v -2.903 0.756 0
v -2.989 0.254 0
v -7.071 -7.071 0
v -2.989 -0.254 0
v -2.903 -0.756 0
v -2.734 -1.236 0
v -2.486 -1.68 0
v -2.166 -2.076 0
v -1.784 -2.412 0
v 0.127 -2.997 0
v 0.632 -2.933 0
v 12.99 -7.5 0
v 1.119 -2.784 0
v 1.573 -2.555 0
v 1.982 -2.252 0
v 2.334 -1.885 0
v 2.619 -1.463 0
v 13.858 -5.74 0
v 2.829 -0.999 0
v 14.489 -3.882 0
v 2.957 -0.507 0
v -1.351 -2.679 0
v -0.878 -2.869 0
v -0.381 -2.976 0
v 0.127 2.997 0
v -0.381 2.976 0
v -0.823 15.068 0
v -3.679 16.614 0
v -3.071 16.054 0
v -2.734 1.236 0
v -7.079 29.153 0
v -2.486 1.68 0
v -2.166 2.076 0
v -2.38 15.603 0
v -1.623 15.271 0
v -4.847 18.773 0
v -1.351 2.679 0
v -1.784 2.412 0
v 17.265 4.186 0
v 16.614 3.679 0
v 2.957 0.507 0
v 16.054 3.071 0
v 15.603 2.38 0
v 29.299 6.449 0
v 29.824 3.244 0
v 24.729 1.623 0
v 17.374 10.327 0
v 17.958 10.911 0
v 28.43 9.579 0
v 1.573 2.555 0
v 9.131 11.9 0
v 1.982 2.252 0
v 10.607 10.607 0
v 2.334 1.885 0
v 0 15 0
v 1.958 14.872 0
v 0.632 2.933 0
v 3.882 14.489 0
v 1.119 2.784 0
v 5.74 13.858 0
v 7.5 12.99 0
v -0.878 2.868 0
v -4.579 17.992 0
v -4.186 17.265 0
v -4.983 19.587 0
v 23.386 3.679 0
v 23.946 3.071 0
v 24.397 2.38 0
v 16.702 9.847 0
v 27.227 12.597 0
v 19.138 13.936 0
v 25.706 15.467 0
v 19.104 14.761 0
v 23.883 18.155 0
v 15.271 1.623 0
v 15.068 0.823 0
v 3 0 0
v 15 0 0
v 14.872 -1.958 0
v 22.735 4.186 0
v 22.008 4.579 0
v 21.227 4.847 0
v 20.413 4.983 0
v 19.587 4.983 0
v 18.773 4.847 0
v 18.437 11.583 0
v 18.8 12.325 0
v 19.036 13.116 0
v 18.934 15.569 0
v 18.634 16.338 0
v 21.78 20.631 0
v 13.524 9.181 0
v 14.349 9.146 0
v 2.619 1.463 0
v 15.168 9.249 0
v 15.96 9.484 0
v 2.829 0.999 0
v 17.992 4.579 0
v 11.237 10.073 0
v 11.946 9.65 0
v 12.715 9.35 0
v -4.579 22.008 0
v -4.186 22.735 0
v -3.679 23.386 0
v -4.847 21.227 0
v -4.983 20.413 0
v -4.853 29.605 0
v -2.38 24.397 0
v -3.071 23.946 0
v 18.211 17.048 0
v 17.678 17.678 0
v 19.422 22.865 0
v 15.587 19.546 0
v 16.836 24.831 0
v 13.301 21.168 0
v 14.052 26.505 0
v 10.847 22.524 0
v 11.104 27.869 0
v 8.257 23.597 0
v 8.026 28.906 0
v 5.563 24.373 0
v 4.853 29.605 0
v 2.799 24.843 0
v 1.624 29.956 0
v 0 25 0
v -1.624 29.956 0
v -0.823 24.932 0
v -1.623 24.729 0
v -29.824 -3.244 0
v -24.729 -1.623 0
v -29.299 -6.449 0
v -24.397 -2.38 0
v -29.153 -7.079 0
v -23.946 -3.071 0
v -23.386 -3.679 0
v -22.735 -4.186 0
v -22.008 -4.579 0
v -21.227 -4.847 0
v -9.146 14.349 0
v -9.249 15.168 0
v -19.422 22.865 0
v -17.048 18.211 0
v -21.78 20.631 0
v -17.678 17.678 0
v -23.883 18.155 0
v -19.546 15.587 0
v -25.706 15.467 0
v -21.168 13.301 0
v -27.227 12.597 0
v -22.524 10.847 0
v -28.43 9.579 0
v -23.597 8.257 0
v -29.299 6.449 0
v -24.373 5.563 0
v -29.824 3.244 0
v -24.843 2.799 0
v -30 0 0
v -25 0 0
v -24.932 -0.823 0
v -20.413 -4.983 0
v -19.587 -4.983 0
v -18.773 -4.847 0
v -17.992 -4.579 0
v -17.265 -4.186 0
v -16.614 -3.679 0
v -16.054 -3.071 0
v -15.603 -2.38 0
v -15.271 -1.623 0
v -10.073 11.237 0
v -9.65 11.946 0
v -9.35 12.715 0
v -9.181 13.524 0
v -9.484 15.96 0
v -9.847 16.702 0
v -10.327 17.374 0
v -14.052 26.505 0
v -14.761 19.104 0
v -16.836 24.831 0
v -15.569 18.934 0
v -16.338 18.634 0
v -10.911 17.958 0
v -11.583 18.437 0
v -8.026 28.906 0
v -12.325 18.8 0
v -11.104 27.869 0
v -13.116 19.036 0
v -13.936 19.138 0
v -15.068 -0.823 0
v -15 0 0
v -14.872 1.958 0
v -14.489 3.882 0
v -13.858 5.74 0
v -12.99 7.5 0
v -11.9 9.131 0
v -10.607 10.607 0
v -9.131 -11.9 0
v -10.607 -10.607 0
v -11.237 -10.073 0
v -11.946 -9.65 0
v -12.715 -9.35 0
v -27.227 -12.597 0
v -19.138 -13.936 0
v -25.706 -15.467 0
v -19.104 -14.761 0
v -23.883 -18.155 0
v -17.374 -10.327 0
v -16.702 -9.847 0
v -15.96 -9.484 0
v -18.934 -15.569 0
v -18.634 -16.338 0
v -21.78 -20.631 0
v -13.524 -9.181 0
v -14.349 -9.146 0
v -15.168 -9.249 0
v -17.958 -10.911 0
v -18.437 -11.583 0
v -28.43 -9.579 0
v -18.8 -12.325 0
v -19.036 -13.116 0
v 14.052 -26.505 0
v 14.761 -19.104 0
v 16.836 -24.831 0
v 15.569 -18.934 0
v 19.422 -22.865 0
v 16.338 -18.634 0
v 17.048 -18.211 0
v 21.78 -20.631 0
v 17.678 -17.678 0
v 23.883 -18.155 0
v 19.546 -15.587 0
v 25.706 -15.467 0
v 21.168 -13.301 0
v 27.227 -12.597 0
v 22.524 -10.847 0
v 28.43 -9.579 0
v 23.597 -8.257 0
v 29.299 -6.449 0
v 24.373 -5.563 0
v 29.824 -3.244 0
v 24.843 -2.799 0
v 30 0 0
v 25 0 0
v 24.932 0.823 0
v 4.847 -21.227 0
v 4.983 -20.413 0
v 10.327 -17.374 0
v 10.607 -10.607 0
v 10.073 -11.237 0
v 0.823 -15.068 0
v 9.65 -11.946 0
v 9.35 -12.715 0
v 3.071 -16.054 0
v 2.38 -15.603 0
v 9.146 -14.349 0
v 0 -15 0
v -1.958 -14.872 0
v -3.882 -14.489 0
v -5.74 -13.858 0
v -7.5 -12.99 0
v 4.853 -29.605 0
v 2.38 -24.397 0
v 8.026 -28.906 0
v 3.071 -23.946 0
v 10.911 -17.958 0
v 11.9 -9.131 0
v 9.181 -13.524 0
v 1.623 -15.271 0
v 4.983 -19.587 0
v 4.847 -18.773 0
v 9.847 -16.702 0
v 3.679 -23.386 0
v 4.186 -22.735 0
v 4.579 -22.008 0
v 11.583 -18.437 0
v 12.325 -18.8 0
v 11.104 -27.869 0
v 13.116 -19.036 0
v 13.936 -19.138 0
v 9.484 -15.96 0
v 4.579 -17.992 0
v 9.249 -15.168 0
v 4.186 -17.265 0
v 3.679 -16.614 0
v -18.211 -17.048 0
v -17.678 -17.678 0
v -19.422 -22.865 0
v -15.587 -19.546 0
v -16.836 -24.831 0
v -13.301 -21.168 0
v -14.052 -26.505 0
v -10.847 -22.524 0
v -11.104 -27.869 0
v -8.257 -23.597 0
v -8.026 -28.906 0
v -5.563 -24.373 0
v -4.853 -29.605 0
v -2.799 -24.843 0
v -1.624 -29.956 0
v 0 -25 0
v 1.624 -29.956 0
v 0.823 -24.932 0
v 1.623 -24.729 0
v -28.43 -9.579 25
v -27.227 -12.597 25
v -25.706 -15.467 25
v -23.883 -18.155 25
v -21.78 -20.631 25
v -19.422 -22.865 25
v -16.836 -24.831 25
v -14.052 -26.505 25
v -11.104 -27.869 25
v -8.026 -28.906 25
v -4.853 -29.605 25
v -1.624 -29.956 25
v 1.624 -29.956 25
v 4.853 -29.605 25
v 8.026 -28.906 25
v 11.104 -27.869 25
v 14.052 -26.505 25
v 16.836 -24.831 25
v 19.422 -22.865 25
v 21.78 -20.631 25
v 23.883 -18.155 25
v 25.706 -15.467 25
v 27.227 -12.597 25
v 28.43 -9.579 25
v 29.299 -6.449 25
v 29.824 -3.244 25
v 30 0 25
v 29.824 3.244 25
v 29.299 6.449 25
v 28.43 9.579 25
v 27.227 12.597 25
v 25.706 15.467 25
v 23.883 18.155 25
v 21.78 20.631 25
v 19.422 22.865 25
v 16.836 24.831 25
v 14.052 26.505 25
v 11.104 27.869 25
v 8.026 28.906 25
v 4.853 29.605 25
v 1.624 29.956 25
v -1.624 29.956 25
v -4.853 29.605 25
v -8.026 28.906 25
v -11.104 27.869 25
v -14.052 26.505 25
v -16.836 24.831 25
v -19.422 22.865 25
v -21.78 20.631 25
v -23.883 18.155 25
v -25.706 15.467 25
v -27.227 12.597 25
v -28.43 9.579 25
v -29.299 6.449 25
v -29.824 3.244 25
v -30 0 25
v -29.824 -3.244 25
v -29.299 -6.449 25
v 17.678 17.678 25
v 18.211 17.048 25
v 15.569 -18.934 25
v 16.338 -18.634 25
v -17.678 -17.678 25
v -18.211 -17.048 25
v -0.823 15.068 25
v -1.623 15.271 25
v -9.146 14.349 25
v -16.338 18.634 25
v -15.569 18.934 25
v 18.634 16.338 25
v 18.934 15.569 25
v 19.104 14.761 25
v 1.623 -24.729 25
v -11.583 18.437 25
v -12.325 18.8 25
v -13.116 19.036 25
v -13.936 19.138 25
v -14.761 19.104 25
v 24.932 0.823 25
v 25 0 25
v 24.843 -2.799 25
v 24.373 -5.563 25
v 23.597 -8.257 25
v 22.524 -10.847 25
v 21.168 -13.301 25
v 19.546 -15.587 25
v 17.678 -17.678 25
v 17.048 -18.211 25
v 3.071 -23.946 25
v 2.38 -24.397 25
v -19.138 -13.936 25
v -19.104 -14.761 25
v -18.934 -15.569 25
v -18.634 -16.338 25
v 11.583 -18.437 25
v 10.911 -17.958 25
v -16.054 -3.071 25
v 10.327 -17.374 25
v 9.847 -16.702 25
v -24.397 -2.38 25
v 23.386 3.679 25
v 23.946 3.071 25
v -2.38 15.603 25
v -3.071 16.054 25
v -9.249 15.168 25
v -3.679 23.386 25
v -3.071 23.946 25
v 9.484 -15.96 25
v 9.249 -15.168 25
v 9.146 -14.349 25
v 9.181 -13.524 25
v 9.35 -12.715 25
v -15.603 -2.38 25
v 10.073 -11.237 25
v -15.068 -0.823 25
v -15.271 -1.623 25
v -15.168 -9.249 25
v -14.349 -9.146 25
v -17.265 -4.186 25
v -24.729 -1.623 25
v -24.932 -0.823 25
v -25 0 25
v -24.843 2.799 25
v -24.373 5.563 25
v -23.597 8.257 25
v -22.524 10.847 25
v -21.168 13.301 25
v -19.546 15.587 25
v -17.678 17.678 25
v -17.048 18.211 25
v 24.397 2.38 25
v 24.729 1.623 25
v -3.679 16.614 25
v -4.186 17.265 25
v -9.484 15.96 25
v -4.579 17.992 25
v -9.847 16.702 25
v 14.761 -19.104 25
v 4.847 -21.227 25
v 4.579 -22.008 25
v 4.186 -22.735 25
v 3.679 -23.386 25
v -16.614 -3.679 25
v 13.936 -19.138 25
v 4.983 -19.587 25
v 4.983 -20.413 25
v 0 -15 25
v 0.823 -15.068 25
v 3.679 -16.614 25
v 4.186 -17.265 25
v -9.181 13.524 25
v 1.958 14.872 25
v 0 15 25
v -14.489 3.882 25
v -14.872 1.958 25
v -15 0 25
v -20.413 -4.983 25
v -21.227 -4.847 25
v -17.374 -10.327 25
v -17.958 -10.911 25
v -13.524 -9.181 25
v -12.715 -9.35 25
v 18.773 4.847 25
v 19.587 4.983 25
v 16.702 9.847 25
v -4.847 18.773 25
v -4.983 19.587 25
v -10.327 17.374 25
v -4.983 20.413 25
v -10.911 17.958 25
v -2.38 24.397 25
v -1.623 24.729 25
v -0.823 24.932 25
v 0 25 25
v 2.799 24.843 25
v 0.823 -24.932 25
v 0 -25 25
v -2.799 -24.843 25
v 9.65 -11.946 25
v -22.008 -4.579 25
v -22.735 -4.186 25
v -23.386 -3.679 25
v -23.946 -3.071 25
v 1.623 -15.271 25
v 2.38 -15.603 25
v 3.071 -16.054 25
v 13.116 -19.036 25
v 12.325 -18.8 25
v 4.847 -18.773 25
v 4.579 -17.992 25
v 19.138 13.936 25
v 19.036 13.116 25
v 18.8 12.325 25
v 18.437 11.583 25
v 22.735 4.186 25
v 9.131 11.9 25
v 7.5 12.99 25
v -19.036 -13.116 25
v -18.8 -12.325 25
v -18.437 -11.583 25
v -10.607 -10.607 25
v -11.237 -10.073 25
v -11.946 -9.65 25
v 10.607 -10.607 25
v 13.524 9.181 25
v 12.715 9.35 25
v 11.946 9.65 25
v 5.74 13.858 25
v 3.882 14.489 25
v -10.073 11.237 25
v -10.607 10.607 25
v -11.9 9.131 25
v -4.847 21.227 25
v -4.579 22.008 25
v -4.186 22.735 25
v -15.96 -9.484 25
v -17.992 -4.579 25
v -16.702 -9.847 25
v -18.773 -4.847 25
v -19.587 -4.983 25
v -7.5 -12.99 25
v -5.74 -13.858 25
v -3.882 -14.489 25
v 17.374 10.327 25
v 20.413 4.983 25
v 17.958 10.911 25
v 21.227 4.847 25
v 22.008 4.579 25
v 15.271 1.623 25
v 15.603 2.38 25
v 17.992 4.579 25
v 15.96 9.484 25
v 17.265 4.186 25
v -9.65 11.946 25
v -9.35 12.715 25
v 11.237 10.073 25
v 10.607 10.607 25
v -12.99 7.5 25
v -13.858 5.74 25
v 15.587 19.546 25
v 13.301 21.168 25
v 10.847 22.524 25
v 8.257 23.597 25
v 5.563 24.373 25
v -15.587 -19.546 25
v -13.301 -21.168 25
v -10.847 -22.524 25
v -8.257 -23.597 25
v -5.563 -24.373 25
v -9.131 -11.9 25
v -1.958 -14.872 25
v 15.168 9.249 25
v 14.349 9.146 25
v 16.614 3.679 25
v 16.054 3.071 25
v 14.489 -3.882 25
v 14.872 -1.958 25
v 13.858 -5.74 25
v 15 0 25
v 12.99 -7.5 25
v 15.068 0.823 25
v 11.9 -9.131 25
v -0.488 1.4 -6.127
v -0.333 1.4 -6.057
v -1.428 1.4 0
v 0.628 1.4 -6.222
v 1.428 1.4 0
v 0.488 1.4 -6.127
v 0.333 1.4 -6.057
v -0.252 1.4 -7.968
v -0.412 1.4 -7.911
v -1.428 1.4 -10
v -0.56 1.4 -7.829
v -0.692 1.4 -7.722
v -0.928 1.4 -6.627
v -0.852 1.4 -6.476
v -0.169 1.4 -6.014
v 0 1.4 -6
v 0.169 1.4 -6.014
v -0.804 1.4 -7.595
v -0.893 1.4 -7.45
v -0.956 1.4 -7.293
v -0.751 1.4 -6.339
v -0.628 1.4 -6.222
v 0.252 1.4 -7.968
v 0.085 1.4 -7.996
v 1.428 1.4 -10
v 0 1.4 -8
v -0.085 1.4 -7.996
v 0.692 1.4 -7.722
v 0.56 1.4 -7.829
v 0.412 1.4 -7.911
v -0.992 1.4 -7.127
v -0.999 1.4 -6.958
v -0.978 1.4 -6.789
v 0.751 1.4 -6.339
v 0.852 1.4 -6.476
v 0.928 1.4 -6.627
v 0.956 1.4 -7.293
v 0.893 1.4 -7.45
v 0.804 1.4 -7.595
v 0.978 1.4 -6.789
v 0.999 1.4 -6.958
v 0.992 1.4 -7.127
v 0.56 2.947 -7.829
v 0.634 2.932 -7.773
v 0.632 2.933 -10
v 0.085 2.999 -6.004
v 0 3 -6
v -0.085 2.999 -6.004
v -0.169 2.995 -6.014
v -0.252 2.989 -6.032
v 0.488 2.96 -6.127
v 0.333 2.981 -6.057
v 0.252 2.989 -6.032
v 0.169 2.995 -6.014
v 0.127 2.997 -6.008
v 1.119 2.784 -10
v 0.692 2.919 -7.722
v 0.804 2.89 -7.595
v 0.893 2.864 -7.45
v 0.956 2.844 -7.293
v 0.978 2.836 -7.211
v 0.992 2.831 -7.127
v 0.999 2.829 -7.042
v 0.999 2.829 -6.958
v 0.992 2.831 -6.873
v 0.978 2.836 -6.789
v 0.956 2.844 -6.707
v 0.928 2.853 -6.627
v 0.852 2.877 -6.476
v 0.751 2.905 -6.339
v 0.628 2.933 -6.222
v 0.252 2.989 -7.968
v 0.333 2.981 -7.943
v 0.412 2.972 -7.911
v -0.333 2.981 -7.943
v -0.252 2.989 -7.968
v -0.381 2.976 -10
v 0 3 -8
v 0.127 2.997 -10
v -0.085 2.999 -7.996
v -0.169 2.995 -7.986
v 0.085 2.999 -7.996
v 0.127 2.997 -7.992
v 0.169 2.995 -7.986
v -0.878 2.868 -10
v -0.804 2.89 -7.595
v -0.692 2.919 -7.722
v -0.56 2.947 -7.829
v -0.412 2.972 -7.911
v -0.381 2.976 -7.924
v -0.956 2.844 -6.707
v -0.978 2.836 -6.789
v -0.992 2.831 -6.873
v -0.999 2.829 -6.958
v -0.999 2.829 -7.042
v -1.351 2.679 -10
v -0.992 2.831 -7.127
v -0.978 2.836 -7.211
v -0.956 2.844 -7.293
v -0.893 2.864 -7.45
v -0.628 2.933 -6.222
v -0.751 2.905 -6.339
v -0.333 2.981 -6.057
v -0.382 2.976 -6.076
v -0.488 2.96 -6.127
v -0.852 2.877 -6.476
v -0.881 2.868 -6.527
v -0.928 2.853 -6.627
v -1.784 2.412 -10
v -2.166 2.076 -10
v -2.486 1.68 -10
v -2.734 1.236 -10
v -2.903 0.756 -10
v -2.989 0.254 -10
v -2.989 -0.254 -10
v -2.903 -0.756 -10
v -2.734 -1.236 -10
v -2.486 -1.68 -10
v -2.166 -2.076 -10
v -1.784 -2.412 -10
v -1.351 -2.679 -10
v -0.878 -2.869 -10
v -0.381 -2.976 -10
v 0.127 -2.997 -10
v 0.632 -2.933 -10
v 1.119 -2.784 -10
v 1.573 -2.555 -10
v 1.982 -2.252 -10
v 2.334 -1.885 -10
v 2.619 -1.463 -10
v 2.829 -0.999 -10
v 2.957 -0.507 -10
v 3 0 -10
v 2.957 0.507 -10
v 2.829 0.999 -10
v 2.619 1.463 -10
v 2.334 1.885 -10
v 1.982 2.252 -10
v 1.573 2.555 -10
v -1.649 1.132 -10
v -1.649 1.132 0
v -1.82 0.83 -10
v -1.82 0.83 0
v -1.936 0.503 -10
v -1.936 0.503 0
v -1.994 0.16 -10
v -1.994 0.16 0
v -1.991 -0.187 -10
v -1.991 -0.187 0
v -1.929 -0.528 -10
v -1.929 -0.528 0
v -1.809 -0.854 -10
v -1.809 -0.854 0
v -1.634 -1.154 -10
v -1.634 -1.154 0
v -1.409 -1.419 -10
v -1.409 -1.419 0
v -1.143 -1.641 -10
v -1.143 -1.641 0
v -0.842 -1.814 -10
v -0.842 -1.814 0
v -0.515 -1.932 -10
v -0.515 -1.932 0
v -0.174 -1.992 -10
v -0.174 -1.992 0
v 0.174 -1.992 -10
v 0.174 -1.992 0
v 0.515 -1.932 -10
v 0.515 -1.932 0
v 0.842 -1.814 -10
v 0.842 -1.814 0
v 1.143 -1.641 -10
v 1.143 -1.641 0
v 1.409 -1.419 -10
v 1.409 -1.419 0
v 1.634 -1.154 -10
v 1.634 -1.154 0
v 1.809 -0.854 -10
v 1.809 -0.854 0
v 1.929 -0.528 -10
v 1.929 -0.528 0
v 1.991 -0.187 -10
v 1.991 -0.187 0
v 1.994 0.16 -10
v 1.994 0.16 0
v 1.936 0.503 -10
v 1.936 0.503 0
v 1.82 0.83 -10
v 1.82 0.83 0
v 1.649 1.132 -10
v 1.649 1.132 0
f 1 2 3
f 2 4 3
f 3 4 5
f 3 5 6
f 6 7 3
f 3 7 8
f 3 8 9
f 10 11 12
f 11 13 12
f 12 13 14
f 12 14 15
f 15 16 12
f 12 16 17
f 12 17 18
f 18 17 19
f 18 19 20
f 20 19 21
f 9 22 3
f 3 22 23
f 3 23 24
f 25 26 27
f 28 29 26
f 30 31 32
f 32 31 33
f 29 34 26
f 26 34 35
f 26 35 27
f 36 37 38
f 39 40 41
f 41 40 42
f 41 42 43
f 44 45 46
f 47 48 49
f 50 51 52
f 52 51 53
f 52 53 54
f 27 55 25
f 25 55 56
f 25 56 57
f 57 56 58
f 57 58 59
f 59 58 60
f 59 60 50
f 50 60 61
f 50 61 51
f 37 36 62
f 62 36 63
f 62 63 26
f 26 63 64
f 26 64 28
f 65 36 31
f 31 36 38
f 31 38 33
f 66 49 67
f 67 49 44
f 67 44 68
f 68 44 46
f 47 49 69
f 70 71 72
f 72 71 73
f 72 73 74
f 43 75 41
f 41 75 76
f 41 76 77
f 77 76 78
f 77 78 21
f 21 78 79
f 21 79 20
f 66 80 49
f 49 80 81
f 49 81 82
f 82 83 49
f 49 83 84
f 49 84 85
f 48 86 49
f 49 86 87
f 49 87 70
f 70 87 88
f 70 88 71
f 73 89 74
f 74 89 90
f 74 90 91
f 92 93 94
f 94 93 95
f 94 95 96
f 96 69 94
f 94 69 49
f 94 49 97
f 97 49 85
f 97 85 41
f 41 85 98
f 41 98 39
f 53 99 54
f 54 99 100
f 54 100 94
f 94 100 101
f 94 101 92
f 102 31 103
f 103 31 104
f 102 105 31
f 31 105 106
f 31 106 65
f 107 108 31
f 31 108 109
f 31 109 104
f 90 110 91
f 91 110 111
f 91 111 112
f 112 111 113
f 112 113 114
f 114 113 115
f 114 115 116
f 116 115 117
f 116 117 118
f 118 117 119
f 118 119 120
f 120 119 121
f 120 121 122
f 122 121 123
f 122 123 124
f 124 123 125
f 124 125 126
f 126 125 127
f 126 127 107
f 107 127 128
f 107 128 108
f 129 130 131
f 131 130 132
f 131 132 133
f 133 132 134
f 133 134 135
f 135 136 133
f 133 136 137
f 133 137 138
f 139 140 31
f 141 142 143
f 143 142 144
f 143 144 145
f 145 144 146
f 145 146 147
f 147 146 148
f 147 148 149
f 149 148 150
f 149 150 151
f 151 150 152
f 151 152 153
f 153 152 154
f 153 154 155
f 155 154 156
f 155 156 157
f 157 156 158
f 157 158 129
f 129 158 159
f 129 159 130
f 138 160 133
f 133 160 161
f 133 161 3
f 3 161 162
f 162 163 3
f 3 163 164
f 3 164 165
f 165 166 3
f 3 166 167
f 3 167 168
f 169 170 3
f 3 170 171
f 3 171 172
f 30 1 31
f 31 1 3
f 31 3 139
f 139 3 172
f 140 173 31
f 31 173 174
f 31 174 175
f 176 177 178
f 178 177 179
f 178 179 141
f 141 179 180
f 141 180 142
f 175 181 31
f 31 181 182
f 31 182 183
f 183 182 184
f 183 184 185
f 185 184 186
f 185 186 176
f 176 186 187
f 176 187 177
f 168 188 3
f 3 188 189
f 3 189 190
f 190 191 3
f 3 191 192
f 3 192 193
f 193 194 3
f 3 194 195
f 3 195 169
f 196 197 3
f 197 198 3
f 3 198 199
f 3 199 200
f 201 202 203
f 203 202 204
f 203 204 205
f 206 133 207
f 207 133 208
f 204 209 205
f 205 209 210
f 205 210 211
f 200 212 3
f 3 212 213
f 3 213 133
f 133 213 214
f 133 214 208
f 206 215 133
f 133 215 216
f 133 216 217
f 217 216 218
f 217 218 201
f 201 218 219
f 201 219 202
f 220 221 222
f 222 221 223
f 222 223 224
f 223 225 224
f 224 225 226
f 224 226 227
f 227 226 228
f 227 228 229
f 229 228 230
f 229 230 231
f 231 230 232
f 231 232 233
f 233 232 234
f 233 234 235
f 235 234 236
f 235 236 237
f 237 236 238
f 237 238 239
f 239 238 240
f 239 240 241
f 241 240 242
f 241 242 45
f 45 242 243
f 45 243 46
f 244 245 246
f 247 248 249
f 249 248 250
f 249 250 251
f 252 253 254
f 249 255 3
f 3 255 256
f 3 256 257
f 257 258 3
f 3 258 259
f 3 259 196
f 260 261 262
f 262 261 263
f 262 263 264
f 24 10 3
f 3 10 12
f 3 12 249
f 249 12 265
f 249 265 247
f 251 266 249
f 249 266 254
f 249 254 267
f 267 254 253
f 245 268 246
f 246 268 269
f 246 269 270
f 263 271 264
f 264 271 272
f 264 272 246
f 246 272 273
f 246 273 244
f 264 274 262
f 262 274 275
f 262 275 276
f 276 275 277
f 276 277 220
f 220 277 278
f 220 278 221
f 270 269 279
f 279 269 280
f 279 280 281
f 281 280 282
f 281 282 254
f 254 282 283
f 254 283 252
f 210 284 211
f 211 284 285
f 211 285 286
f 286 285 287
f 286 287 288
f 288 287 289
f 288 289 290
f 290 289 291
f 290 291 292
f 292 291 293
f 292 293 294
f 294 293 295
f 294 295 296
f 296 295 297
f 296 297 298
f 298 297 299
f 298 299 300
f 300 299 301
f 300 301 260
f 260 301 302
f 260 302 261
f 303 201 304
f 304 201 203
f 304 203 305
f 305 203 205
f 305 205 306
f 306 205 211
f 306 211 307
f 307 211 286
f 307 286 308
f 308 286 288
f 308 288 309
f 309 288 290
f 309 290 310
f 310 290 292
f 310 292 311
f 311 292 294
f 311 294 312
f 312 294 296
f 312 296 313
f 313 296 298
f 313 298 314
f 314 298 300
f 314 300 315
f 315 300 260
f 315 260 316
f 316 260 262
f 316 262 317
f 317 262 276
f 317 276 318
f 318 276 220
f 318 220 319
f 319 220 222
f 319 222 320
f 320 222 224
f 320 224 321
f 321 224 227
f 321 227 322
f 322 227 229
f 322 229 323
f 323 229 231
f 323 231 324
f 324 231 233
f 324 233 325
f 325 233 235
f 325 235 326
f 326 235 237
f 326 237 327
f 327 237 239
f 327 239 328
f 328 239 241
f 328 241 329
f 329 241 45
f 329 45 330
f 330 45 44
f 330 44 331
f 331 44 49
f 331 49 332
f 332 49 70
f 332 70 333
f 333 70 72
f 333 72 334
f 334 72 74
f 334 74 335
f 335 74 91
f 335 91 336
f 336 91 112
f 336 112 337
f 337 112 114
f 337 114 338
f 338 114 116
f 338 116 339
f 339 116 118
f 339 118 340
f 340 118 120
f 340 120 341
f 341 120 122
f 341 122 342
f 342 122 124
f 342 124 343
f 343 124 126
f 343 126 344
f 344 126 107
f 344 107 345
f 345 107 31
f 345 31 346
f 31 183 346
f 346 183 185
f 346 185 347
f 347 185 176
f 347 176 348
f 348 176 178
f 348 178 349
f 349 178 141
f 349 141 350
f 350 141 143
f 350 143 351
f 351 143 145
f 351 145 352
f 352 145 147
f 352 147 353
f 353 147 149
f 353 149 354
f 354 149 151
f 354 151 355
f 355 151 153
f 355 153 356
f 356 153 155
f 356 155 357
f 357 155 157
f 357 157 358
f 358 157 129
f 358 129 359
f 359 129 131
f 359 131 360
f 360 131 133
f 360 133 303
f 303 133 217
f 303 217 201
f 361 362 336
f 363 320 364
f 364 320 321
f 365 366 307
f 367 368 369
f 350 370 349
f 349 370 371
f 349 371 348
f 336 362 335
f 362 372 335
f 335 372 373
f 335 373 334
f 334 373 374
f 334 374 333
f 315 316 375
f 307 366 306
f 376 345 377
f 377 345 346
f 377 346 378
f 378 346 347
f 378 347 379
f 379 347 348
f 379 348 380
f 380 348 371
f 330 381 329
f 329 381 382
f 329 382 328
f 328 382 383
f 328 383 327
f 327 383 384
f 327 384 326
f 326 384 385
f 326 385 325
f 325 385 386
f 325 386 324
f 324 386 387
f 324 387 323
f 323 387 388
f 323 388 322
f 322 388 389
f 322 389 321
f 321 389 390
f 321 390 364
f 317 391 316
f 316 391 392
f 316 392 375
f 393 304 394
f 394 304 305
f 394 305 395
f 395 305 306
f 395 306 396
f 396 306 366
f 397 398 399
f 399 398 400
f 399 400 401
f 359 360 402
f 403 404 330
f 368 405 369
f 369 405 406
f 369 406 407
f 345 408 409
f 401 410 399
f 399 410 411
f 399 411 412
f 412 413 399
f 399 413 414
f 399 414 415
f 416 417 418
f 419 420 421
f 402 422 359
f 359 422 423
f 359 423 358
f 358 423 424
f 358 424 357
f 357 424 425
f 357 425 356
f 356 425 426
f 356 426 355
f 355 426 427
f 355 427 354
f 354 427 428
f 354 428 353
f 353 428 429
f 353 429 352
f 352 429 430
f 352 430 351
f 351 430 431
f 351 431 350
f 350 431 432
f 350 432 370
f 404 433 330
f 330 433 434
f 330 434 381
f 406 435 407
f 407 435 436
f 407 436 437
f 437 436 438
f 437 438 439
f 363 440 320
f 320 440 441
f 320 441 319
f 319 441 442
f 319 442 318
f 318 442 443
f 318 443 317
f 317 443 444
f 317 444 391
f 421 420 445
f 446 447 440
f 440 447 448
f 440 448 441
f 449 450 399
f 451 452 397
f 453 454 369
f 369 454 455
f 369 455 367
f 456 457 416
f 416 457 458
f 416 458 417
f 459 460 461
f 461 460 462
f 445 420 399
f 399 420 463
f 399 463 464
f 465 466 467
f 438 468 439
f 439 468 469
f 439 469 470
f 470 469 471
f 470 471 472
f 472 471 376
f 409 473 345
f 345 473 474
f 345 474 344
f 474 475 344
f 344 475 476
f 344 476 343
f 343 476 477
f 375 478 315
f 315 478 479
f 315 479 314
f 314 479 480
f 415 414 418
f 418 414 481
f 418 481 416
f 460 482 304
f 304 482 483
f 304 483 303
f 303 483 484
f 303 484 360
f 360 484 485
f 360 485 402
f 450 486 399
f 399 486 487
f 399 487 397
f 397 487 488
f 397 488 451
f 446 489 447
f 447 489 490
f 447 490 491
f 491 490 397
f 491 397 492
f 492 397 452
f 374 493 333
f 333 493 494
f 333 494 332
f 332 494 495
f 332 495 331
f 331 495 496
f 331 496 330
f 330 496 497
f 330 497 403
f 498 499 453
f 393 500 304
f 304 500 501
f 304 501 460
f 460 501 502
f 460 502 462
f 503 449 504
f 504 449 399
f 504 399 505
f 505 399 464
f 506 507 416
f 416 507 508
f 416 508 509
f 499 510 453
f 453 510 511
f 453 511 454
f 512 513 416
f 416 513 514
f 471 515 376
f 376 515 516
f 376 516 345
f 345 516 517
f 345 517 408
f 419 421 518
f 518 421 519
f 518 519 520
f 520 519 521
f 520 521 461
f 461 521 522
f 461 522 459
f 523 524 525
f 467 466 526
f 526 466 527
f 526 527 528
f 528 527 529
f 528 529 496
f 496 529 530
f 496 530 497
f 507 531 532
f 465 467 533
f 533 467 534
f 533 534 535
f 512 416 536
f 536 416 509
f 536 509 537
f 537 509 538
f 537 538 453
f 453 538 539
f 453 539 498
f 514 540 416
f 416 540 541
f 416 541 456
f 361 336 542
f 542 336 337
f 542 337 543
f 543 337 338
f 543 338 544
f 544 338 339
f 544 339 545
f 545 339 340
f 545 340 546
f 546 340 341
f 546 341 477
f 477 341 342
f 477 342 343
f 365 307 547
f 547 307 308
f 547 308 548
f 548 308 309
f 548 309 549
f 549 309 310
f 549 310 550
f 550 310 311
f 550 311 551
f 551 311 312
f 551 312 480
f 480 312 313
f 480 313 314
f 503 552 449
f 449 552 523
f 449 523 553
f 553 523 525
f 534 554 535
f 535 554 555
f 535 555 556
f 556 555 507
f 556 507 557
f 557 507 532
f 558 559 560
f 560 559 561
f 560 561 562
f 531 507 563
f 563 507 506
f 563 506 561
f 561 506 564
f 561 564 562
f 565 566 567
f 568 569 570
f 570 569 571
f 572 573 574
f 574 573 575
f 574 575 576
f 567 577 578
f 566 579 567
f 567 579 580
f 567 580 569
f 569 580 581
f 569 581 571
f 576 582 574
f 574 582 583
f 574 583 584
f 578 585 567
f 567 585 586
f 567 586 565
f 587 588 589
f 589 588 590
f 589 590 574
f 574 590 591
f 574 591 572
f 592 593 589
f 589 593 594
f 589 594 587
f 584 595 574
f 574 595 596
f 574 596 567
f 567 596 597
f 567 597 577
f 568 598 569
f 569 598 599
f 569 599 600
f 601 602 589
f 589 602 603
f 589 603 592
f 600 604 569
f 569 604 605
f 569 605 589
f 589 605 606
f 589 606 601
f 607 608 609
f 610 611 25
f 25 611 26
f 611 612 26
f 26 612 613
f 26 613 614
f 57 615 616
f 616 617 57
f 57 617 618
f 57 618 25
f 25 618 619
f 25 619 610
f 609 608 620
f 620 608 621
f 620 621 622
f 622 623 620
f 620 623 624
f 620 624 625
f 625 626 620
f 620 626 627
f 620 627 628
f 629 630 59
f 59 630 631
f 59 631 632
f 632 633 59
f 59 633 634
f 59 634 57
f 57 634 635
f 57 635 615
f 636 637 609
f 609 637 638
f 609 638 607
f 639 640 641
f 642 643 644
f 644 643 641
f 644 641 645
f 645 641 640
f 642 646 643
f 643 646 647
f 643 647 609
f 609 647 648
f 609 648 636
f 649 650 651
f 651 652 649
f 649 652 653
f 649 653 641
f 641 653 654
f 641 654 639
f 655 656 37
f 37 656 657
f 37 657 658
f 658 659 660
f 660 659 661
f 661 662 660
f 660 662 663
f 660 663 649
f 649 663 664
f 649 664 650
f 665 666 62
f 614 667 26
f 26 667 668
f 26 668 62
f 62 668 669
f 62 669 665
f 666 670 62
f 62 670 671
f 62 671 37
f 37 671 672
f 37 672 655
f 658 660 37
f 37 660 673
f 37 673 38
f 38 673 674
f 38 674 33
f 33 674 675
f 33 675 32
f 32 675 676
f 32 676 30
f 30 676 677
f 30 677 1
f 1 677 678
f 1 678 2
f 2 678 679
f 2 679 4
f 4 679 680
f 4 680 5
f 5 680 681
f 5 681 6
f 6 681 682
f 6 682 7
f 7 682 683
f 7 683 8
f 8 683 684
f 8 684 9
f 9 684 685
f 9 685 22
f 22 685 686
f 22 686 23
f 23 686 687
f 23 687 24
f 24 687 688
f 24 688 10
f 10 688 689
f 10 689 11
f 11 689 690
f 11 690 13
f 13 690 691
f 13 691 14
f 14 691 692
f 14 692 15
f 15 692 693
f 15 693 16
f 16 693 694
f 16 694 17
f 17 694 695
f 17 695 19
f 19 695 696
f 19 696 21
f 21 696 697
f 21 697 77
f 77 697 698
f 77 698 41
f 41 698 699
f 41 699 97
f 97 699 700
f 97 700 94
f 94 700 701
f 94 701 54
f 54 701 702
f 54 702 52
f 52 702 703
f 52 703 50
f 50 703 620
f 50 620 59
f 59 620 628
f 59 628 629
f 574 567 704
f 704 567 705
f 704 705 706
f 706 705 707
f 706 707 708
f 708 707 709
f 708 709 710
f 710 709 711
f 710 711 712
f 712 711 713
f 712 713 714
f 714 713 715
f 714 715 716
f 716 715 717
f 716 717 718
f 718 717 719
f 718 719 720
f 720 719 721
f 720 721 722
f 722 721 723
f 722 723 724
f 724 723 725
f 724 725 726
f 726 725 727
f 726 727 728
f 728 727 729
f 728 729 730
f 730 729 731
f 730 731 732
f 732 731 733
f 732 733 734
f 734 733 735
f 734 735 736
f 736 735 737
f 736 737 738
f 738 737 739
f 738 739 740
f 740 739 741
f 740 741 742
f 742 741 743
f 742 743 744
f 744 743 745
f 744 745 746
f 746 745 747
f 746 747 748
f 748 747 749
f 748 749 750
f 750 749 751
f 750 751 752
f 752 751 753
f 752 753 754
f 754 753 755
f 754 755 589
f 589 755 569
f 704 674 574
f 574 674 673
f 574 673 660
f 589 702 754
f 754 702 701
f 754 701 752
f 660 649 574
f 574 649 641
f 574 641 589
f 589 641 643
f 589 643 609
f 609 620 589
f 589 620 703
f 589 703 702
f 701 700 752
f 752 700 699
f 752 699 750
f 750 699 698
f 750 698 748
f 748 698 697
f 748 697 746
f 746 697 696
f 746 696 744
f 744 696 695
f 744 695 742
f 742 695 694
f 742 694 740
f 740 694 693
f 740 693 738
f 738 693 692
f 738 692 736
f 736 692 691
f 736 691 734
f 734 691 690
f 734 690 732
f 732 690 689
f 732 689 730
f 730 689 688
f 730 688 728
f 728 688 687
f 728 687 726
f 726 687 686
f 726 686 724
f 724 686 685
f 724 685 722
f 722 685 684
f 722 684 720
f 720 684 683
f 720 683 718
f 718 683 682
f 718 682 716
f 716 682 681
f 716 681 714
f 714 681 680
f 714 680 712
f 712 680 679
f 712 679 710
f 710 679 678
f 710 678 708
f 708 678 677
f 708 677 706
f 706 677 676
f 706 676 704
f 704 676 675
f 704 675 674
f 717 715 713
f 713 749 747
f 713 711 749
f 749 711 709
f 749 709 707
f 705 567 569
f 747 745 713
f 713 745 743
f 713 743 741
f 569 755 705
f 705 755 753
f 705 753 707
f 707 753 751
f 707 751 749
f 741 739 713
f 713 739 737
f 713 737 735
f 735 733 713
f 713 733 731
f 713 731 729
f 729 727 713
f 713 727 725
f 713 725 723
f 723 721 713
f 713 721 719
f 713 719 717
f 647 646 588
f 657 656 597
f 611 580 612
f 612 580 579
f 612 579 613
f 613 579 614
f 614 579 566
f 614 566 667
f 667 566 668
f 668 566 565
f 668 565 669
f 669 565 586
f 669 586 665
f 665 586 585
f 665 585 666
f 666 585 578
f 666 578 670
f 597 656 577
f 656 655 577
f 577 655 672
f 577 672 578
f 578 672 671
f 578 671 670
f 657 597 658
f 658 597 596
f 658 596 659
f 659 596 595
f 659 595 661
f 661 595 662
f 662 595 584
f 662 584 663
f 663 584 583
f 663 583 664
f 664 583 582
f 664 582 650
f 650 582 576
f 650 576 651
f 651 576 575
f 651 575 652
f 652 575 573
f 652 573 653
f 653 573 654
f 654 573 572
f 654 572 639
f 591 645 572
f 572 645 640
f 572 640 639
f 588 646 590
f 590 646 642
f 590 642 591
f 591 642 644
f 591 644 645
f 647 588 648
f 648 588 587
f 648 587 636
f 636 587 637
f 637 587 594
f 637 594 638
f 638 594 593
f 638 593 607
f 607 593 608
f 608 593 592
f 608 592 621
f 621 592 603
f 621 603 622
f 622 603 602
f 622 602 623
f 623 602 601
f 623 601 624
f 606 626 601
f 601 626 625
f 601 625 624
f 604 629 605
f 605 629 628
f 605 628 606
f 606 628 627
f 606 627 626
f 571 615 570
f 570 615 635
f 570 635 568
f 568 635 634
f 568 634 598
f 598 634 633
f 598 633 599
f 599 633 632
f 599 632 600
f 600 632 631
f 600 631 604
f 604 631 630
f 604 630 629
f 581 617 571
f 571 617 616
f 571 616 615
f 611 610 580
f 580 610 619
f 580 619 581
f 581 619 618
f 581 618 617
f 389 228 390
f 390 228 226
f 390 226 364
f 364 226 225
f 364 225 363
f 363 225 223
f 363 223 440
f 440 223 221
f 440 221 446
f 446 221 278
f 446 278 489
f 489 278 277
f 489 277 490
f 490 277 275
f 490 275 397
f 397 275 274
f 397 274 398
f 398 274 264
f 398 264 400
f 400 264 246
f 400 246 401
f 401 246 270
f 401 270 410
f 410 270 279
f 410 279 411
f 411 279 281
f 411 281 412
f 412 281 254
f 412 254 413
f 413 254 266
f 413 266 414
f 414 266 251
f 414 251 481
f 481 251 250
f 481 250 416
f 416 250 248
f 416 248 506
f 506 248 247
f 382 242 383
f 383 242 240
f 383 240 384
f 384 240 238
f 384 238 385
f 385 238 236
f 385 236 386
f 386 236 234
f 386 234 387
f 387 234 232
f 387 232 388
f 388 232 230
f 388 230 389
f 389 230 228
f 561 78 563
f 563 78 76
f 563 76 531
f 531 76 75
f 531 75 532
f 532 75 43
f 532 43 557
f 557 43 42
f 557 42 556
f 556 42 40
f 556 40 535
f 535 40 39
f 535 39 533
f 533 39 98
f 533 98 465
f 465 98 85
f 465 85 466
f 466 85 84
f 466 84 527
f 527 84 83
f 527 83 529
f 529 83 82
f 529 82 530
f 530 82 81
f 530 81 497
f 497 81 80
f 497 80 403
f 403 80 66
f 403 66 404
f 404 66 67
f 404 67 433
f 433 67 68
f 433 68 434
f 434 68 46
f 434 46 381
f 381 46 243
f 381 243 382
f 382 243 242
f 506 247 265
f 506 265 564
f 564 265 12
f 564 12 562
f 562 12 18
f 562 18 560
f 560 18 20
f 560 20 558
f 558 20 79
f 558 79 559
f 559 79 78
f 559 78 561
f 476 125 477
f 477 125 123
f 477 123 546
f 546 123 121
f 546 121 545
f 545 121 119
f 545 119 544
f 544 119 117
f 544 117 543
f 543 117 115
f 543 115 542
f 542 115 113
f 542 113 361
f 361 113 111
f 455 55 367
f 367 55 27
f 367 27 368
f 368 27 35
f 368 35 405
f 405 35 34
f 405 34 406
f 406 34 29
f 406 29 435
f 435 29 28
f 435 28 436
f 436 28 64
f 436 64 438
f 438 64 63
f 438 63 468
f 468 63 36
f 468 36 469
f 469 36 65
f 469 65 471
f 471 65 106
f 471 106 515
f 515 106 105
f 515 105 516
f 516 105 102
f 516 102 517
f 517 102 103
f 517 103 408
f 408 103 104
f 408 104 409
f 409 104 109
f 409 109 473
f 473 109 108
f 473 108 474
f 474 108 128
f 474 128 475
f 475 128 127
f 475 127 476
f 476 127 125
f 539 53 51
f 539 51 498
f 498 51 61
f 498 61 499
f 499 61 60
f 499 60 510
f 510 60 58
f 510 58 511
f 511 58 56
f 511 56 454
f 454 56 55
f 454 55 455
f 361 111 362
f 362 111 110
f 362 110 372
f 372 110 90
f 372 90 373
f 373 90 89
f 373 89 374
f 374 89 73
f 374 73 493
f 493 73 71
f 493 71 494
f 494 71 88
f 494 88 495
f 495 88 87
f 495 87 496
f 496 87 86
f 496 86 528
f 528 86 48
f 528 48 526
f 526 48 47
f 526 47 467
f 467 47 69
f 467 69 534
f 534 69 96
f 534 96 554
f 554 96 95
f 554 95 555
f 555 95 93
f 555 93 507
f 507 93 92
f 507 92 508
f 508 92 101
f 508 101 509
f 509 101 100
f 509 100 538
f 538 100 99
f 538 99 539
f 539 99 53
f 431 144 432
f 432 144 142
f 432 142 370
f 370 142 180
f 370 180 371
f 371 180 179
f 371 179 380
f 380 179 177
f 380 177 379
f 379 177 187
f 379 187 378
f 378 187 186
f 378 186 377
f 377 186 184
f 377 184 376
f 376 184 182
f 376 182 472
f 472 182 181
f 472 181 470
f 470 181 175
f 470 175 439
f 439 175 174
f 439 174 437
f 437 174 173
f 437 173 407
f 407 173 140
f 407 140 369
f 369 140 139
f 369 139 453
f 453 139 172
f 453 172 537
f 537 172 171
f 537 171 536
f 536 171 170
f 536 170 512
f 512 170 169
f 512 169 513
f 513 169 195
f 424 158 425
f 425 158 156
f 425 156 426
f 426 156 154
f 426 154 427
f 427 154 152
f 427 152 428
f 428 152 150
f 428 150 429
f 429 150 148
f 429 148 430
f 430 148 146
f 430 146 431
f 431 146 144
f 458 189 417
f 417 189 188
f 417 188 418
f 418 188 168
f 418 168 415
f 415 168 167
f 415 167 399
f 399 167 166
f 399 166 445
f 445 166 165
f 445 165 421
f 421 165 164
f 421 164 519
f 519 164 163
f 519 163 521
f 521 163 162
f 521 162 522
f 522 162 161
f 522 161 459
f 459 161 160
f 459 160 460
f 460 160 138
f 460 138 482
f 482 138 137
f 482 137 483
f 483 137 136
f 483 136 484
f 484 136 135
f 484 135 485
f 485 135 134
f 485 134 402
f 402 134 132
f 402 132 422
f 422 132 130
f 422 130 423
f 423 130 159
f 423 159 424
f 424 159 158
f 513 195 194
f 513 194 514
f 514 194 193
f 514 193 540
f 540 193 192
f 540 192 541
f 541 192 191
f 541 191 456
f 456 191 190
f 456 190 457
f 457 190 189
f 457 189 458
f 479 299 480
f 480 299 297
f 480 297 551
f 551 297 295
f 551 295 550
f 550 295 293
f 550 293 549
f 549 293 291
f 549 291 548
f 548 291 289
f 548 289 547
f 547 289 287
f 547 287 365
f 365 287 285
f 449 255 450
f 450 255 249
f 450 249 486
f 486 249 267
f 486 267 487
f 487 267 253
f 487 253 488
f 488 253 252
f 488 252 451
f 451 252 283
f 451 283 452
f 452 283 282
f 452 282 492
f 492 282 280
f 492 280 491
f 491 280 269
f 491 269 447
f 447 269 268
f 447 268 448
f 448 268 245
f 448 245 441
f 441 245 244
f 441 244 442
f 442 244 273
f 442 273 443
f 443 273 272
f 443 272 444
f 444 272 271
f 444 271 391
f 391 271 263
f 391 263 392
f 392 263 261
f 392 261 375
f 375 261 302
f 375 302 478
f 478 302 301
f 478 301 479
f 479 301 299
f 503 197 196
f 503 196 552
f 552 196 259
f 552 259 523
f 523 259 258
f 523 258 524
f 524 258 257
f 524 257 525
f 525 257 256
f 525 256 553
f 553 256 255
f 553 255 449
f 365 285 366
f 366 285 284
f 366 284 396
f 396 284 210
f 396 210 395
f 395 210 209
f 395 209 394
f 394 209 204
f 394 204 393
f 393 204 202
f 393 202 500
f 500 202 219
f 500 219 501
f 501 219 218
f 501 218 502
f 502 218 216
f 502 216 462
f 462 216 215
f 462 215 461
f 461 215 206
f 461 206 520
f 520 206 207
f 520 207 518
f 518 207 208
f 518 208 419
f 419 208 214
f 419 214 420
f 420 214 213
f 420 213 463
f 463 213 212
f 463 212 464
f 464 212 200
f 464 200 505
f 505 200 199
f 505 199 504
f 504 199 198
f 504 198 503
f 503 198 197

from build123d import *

# Parameters (mm, degrees)
SKETCH_1_R          = 30
EXTRUDE_1_DEPTH     = 25
EXTRUDE_5_DEPTH     = 10
CUT_EXTRUDE_1_REACH = 53.127
SKETCH_4_R          = 1
CUT_EXTRUDE_3_REACH = 51.244


with BuildPart() as part:
    # 草图1 → 凸台-拉伸1 (new body)
    with BuildSketch(Plane.XY):
        Circle(SKETCH_1_R)
    extrude(amount=EXTRUDE_1_DEPTH)

    # 草图2 → 凸台-拉伸5 (add)
    with BuildSketch(Plane.XY):
        with BuildLine():
            ThreePointArc((2.653299832, 1.4), (0, 3), (-2.653299832, 1.4))
            Line((-2.653299832, 1.4), (-1.428285686, 1.4))
            ThreePointArc((-1.428285686, 1.4), (0, 2), (1.428285686, 1.4))
            Line((1.428285686, 1.4), (2.653299832, 1.4))
        make_face()
        with BuildLine():
            Line((-1.428285686, 1.4), (-2.653299832, 1.4))
            ThreePointArc((-2.653299832, 1.4), (-0.721145097, -2.912035327), (3, 0))
            ThreePointArc((3, 0), (2.912035327, 0.721145097), (2.653299832, 1.4))
            Line((2.653299832, 1.4), (1.428285686, 1.4))
            ThreePointArc((1.428285686, 1.4), (1.851563039, 0.756117924), (2, 0))
            ThreePointArc((2, 0), (-0.756117924, -1.851563039), (-1.428285686, 1.4))
        make_face()
        with BuildLine():
            ThreePointArc((1.428285686, 1.4), (0, 2), (-1.428285686, 1.4))
            Line((-1.428285686, 1.4), (0, 1.4))
            Line((0, 1.4), (1.428285686, 1.4))
        make_face()
    extrude(amount=-EXTRUDE_5_DEPTH)

    # 草图4 → 切除-拉伸1 (cut, up to next)
    with BuildSketch(Plane(origin=(0, 3, 0), x_dir=(1, 0, 0), z_dir=(0, 1, 0)), mode=Mode.PRIVATE) as cut_extrude_1_sk1:
        with Locations(Location((0, 7, 0), (0, 0, 270))):
            Circle(SKETCH_4_R)
    cut_extrude_1_tool1 = extrude(cut_extrude_1_sk1.sketch, amount=-CUT_EXTRUDE_1_REACH, mode=Mode.PRIVATE) & part.part
    add(cut_extrude_1_tool1.solids().sort_by_distance((0, 3, -7))[0], mode=Mode.SUBTRACT)

    # 草图6 → 切除-拉伸3 (cut, up to next)
    with BuildSketch(Plane(origin=(0, 0, 0), x_dir=(-1, 0, 0), z_dir=(0, 0, -1)), mode=Mode.PRIVATE) as cut_extrude_3_sk1:
        with BuildLine():
            ThreePointArc((-10.60660171, 10.606601726), (-5.74025148, 13.85819299), (2e-09, 15))
            ThreePointArc((2e-09, 15), (5, 20.000000001), (0, 25))
            ThreePointArc((0, 25), (-9.567085809, 23.096988313), (-17.67766953, 17.67766953))
            ThreePointArc((-17.67766953, 17.67766953), (-17.677669526, 10.606601714), (-10.60660171, 10.606601726))
        make_face()
    cut_extrude_3_tool1 = extrude(cut_extrude_3_sk1.sketch, amount=-CUT_EXTRUDE_3_REACH, mode=Mode.PRIVATE) & part.part
    # 草图6 → 切除-拉伸3 (cut, up to next)
    with BuildSketch(Plane(origin=(0, 0, 0), x_dir=(-1, 0, 0), z_dir=(0, 0, -1)), mode=Mode.PRIVATE) as cut_extrude_3_sk2:
        with BuildLine():
            ThreePointArc((10.606601688, 10.606601748), (13.858192979, 5.740251505), (15, 0))
            ThreePointArc((15, 0), (20, -5), (25, 0))
            ThreePointArc((25, 0), (23.096988313, 9.567085809), (17.67766953, 17.67766953))
            ThreePointArc((17.67766953, 17.67766953), (10.606601733, 17.677669545), (10.606601688, 10.606601748))
        make_face()
    cut_extrude_3_tool2 = extrude(cut_extrude_3_sk2.sketch, amount=-CUT_EXTRUDE_3_REACH, mode=Mode.PRIVATE) & part.part
    # 草图6 → 切除-拉伸3 (cut, up to next)
    with BuildSketch(Plane(origin=(0, 0, 0), x_dir=(-1, 0, 0), z_dir=(0, 0, -1)), mode=Mode.PRIVATE) as cut_extrude_3_sk3:
        with BuildLine():
            ThreePointArc((-15, 0), (-19.999999994, 5), (-25, 1.2e-08))
            ThreePointArc((-25, 1.2e-08), (-23.096988305, -9.567085829), (-17.67766949, -17.677669569))
            ThreePointArc((-17.67766949, -17.677669569), (-10.606601708, -17.677669519), (-10.606601699, -10.606601737))
            ThreePointArc((-10.606601699, -10.606601737), (-13.858192983, -5.740251498), (-15, 0))
        make_face()
    cut_extrude_3_tool3 = extrude(cut_extrude_3_sk3.sketch, amount=-CUT_EXTRUDE_3_REACH, mode=Mode.PRIVATE) & part.part
    # 草图6 → 切除-拉伸3 (cut, up to next)
    with BuildSketch(Plane(origin=(0, 0, 0), x_dir=(-1, 0, 0), z_dir=(0, 0, -1)), mode=Mode.PRIVATE) as cut_extrude_3_sk4:
        with BuildLine():
            ThreePointArc((10.606601737, -10.606601699), (5.740251492, -13.858192985), (-1.3e-08, -15))
            ThreePointArc((-1.3e-08, -15), (-5, -19.999999976), (-6e-08, -25))
            ThreePointArc((-6e-08, -25), (9.567085826, -23.096988306), (17.677669598, -17.677669461))
            ThreePointArc((17.677669598, -17.677669461), (17.677669505, -10.606601693), (10.606601737, -10.606601699))
        make_face()
    cut_extrude_3_tool4 = extrude(cut_extrude_3_sk4.sketch, amount=-CUT_EXTRUDE_3_REACH, mode=Mode.PRIVATE) & part.part
    add(cut_extrude_3_tool1.solids().sort_by_distance((7.329332, 17.694573, 0))[0], mode=Mode.SUBTRACT)
    add(cut_extrude_3_tool2.solids().sort_by_distance((-17.694573, 7.329332, 0))[0], mode=Mode.SUBTRACT)
    add(cut_extrude_3_tool3.solids().sort_by_distance((17.694573, -7.329332, 0))[0], mode=Mode.SUBTRACT)
    add(cut_extrude_3_tool4.solids().sort_by_distance((-7.329332, -17.694573, 0))[0], mode=Mode.SUBTRACT)


solid = part.part
